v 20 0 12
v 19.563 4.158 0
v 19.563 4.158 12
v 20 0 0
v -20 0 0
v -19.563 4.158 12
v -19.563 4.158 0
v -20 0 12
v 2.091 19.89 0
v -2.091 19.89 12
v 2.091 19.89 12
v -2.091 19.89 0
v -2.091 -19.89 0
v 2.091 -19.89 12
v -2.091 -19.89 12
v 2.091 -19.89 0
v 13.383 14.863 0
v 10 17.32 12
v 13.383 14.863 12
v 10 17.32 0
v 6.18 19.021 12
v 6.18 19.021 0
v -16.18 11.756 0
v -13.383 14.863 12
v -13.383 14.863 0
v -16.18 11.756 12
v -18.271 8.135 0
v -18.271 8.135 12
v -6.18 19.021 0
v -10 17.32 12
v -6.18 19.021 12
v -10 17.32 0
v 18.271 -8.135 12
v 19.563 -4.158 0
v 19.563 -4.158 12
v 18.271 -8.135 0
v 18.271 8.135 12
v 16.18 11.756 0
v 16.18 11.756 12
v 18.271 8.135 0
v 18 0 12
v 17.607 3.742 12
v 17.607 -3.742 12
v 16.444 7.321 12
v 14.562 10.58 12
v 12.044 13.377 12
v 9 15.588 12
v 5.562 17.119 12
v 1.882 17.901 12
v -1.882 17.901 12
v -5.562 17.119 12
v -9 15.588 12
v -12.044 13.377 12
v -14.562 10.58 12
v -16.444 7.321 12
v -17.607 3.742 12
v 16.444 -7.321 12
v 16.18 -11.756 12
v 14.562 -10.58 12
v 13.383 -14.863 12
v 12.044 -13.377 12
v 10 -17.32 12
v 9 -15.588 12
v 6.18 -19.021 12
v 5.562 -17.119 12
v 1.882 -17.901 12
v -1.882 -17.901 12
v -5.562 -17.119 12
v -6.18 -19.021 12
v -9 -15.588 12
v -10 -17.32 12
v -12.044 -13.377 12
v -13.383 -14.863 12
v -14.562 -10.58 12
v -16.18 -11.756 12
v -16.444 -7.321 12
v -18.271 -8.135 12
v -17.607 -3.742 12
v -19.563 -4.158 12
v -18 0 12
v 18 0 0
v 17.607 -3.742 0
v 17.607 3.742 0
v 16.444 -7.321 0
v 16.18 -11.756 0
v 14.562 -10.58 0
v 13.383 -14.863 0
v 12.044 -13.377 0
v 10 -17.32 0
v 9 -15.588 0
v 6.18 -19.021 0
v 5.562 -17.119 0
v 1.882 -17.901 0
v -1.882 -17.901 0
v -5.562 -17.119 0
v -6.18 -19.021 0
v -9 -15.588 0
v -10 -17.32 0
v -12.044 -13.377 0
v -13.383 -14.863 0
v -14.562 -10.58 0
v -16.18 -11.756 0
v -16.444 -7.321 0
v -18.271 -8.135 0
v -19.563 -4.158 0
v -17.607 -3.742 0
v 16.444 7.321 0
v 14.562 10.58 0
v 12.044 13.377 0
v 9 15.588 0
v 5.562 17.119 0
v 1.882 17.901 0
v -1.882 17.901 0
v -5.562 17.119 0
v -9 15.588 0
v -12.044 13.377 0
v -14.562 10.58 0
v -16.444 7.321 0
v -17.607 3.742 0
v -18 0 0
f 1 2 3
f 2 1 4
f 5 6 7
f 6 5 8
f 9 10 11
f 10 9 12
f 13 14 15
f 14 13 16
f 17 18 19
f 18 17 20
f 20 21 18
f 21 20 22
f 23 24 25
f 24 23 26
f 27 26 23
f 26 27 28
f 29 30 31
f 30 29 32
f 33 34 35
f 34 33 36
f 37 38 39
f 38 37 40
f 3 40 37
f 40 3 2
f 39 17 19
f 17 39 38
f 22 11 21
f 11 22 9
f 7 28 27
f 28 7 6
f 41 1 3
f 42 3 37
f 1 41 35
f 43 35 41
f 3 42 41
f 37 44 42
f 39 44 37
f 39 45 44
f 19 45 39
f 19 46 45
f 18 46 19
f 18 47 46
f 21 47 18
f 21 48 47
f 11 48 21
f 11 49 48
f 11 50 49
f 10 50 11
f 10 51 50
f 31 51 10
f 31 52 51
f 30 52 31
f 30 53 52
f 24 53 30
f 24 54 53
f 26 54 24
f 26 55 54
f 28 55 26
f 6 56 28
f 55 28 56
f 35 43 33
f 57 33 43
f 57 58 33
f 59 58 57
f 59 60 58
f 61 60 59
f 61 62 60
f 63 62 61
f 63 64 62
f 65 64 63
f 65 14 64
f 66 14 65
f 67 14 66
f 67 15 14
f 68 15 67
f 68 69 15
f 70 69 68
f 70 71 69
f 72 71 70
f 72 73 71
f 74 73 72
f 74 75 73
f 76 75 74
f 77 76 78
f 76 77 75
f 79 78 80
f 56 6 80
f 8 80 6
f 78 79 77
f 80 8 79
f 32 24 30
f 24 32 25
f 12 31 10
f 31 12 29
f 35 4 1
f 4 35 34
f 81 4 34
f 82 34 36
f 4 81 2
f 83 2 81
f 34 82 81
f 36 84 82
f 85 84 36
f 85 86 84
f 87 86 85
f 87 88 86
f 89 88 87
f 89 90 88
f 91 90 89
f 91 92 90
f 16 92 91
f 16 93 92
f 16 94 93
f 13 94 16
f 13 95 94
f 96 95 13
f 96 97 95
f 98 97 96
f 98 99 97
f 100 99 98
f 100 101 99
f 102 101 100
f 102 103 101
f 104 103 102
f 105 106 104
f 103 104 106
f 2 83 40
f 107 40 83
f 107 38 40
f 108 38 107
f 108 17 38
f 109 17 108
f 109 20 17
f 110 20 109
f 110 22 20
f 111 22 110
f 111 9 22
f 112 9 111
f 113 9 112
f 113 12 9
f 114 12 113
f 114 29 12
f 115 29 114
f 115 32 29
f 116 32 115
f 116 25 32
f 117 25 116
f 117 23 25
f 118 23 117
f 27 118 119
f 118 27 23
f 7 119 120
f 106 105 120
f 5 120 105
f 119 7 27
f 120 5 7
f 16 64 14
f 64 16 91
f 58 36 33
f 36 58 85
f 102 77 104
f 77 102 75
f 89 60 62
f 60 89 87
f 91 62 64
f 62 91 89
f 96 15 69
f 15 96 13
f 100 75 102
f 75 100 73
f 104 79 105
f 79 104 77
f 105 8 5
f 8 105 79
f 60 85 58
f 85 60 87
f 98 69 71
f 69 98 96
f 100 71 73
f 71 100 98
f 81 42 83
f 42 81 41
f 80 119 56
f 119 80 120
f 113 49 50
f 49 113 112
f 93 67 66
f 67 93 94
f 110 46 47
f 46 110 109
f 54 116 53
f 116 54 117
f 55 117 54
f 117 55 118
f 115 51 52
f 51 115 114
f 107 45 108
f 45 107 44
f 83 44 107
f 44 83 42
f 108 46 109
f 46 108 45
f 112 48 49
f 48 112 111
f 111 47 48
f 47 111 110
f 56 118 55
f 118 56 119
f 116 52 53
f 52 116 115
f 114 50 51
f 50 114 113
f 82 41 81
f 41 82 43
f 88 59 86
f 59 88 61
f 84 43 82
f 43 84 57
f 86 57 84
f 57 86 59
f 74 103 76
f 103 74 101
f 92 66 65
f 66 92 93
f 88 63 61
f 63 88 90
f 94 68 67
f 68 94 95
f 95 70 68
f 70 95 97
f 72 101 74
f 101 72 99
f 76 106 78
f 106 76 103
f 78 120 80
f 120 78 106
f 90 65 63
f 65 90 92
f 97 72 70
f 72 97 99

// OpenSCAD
difference() {
  cylinder(h = 12, r = 20, center = false);
  cylinder(h = 12, r = 20 - 2, center = false);
  translate([0,0,-0.1])
  cylinder(h = 12, r = 6, center = false);
}
